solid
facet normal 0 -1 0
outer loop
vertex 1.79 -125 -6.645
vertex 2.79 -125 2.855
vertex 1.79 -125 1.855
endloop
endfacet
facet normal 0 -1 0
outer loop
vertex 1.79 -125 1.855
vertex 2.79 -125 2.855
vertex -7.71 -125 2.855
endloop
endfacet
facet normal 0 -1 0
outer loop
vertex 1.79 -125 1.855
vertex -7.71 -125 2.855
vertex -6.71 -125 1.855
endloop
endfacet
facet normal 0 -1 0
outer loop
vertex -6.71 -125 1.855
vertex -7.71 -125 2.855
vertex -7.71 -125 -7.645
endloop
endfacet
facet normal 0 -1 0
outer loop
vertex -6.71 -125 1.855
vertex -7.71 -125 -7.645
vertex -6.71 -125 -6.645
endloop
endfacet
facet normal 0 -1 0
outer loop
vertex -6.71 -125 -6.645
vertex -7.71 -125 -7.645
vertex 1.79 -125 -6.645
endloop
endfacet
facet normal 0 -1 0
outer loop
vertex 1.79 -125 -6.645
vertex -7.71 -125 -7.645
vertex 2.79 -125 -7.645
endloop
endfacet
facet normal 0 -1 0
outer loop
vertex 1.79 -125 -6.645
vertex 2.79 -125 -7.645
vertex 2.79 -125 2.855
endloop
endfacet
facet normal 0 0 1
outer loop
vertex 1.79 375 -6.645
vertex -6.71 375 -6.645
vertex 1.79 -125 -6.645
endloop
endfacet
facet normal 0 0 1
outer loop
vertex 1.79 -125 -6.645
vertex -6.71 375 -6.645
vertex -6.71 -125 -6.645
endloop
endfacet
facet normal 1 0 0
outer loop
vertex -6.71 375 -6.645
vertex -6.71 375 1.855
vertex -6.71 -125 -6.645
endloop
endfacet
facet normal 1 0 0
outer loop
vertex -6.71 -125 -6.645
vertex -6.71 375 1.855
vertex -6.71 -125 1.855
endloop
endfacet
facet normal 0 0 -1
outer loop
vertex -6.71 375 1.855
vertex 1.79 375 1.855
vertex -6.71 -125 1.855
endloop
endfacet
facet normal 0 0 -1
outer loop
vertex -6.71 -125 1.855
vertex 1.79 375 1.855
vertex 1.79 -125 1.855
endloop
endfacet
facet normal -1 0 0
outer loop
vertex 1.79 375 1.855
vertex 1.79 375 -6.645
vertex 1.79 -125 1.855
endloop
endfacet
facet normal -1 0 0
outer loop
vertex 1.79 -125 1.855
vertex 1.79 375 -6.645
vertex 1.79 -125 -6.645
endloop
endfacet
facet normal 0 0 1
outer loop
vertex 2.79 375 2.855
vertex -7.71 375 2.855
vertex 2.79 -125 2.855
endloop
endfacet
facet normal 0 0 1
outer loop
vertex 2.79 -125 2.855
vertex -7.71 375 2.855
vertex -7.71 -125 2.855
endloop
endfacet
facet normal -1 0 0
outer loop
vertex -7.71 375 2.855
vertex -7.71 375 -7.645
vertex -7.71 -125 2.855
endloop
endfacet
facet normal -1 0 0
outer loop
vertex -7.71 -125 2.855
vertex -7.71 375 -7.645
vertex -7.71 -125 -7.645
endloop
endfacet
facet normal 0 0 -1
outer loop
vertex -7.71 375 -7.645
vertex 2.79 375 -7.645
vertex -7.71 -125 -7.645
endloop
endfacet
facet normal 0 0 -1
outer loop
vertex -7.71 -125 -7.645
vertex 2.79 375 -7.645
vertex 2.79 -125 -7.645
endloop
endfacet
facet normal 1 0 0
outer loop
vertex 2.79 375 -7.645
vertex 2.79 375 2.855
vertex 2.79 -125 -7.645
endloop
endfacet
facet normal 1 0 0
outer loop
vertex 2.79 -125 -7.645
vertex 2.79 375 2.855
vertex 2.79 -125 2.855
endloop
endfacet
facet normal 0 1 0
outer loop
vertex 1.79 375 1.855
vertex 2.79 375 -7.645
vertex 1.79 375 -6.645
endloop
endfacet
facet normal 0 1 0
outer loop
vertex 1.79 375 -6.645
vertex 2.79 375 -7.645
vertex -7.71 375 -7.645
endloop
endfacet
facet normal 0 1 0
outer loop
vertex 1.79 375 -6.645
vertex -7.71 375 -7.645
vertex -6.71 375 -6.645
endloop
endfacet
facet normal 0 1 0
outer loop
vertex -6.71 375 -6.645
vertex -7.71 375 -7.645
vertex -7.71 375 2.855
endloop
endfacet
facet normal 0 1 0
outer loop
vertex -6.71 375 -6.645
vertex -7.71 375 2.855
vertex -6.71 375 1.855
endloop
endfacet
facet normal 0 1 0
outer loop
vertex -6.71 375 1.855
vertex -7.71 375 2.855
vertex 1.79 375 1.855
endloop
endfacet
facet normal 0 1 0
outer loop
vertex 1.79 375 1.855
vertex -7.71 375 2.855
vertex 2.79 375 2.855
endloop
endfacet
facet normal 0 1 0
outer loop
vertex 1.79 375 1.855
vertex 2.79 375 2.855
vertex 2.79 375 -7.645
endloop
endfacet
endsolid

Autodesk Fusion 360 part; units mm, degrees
sketch "Sketch1" plane through (0, 0, 0) normal (1, 0, 0) x (0, 1, 0)
  line L0 (-125, 0) -> (375, 0)
  dimension "d1" = 500
sketch "Sketch4" plane through (0, 0, 0) normal (0, 1, 0) x (1, 0, 0)
  line L0 (2.79, 7.645) -> (-7.71, 7.645)
  line L1 (-7.71, 7.645) -> (-7.71, -2.855)
  line L2 (-7.71, -2.855) -> (2.79, -2.855)
  line L3 (2.79, -2.855) -> (2.79, 7.645)
  line L4 (2.79, 7.645) -> (-7.71, -2.855) construction
  line L5 (-7.71, 7.645) -> (2.79, -2.855) construction
  line L6 (1.79, 6.645) -> (-6.71, 6.645)
  line L7 (-6.71, 6.645) -> (-6.71, -1.855)
  line L8 (-6.71, -1.855) -> (1.79, -1.855)
  line L9 (1.79, -1.855) -> (1.79, 6.645)
  line L10 (1.79, 6.645) -> (-6.71, -1.855) construction
  line L11 (-6.71, 6.645) -> (1.79, -1.855) construction
  point P0 (-2.46, 2.395)
  point P1 (-2.46, 2.395)
  dimension "d2" = 10.5
  dimension "d3" = 10.5
  dimension "d4" = 8.5
  dimension "d5" = 8.5
sweep "Sweep1" add profiles "Sketch4" path "Sketch1" along L0 section 1
